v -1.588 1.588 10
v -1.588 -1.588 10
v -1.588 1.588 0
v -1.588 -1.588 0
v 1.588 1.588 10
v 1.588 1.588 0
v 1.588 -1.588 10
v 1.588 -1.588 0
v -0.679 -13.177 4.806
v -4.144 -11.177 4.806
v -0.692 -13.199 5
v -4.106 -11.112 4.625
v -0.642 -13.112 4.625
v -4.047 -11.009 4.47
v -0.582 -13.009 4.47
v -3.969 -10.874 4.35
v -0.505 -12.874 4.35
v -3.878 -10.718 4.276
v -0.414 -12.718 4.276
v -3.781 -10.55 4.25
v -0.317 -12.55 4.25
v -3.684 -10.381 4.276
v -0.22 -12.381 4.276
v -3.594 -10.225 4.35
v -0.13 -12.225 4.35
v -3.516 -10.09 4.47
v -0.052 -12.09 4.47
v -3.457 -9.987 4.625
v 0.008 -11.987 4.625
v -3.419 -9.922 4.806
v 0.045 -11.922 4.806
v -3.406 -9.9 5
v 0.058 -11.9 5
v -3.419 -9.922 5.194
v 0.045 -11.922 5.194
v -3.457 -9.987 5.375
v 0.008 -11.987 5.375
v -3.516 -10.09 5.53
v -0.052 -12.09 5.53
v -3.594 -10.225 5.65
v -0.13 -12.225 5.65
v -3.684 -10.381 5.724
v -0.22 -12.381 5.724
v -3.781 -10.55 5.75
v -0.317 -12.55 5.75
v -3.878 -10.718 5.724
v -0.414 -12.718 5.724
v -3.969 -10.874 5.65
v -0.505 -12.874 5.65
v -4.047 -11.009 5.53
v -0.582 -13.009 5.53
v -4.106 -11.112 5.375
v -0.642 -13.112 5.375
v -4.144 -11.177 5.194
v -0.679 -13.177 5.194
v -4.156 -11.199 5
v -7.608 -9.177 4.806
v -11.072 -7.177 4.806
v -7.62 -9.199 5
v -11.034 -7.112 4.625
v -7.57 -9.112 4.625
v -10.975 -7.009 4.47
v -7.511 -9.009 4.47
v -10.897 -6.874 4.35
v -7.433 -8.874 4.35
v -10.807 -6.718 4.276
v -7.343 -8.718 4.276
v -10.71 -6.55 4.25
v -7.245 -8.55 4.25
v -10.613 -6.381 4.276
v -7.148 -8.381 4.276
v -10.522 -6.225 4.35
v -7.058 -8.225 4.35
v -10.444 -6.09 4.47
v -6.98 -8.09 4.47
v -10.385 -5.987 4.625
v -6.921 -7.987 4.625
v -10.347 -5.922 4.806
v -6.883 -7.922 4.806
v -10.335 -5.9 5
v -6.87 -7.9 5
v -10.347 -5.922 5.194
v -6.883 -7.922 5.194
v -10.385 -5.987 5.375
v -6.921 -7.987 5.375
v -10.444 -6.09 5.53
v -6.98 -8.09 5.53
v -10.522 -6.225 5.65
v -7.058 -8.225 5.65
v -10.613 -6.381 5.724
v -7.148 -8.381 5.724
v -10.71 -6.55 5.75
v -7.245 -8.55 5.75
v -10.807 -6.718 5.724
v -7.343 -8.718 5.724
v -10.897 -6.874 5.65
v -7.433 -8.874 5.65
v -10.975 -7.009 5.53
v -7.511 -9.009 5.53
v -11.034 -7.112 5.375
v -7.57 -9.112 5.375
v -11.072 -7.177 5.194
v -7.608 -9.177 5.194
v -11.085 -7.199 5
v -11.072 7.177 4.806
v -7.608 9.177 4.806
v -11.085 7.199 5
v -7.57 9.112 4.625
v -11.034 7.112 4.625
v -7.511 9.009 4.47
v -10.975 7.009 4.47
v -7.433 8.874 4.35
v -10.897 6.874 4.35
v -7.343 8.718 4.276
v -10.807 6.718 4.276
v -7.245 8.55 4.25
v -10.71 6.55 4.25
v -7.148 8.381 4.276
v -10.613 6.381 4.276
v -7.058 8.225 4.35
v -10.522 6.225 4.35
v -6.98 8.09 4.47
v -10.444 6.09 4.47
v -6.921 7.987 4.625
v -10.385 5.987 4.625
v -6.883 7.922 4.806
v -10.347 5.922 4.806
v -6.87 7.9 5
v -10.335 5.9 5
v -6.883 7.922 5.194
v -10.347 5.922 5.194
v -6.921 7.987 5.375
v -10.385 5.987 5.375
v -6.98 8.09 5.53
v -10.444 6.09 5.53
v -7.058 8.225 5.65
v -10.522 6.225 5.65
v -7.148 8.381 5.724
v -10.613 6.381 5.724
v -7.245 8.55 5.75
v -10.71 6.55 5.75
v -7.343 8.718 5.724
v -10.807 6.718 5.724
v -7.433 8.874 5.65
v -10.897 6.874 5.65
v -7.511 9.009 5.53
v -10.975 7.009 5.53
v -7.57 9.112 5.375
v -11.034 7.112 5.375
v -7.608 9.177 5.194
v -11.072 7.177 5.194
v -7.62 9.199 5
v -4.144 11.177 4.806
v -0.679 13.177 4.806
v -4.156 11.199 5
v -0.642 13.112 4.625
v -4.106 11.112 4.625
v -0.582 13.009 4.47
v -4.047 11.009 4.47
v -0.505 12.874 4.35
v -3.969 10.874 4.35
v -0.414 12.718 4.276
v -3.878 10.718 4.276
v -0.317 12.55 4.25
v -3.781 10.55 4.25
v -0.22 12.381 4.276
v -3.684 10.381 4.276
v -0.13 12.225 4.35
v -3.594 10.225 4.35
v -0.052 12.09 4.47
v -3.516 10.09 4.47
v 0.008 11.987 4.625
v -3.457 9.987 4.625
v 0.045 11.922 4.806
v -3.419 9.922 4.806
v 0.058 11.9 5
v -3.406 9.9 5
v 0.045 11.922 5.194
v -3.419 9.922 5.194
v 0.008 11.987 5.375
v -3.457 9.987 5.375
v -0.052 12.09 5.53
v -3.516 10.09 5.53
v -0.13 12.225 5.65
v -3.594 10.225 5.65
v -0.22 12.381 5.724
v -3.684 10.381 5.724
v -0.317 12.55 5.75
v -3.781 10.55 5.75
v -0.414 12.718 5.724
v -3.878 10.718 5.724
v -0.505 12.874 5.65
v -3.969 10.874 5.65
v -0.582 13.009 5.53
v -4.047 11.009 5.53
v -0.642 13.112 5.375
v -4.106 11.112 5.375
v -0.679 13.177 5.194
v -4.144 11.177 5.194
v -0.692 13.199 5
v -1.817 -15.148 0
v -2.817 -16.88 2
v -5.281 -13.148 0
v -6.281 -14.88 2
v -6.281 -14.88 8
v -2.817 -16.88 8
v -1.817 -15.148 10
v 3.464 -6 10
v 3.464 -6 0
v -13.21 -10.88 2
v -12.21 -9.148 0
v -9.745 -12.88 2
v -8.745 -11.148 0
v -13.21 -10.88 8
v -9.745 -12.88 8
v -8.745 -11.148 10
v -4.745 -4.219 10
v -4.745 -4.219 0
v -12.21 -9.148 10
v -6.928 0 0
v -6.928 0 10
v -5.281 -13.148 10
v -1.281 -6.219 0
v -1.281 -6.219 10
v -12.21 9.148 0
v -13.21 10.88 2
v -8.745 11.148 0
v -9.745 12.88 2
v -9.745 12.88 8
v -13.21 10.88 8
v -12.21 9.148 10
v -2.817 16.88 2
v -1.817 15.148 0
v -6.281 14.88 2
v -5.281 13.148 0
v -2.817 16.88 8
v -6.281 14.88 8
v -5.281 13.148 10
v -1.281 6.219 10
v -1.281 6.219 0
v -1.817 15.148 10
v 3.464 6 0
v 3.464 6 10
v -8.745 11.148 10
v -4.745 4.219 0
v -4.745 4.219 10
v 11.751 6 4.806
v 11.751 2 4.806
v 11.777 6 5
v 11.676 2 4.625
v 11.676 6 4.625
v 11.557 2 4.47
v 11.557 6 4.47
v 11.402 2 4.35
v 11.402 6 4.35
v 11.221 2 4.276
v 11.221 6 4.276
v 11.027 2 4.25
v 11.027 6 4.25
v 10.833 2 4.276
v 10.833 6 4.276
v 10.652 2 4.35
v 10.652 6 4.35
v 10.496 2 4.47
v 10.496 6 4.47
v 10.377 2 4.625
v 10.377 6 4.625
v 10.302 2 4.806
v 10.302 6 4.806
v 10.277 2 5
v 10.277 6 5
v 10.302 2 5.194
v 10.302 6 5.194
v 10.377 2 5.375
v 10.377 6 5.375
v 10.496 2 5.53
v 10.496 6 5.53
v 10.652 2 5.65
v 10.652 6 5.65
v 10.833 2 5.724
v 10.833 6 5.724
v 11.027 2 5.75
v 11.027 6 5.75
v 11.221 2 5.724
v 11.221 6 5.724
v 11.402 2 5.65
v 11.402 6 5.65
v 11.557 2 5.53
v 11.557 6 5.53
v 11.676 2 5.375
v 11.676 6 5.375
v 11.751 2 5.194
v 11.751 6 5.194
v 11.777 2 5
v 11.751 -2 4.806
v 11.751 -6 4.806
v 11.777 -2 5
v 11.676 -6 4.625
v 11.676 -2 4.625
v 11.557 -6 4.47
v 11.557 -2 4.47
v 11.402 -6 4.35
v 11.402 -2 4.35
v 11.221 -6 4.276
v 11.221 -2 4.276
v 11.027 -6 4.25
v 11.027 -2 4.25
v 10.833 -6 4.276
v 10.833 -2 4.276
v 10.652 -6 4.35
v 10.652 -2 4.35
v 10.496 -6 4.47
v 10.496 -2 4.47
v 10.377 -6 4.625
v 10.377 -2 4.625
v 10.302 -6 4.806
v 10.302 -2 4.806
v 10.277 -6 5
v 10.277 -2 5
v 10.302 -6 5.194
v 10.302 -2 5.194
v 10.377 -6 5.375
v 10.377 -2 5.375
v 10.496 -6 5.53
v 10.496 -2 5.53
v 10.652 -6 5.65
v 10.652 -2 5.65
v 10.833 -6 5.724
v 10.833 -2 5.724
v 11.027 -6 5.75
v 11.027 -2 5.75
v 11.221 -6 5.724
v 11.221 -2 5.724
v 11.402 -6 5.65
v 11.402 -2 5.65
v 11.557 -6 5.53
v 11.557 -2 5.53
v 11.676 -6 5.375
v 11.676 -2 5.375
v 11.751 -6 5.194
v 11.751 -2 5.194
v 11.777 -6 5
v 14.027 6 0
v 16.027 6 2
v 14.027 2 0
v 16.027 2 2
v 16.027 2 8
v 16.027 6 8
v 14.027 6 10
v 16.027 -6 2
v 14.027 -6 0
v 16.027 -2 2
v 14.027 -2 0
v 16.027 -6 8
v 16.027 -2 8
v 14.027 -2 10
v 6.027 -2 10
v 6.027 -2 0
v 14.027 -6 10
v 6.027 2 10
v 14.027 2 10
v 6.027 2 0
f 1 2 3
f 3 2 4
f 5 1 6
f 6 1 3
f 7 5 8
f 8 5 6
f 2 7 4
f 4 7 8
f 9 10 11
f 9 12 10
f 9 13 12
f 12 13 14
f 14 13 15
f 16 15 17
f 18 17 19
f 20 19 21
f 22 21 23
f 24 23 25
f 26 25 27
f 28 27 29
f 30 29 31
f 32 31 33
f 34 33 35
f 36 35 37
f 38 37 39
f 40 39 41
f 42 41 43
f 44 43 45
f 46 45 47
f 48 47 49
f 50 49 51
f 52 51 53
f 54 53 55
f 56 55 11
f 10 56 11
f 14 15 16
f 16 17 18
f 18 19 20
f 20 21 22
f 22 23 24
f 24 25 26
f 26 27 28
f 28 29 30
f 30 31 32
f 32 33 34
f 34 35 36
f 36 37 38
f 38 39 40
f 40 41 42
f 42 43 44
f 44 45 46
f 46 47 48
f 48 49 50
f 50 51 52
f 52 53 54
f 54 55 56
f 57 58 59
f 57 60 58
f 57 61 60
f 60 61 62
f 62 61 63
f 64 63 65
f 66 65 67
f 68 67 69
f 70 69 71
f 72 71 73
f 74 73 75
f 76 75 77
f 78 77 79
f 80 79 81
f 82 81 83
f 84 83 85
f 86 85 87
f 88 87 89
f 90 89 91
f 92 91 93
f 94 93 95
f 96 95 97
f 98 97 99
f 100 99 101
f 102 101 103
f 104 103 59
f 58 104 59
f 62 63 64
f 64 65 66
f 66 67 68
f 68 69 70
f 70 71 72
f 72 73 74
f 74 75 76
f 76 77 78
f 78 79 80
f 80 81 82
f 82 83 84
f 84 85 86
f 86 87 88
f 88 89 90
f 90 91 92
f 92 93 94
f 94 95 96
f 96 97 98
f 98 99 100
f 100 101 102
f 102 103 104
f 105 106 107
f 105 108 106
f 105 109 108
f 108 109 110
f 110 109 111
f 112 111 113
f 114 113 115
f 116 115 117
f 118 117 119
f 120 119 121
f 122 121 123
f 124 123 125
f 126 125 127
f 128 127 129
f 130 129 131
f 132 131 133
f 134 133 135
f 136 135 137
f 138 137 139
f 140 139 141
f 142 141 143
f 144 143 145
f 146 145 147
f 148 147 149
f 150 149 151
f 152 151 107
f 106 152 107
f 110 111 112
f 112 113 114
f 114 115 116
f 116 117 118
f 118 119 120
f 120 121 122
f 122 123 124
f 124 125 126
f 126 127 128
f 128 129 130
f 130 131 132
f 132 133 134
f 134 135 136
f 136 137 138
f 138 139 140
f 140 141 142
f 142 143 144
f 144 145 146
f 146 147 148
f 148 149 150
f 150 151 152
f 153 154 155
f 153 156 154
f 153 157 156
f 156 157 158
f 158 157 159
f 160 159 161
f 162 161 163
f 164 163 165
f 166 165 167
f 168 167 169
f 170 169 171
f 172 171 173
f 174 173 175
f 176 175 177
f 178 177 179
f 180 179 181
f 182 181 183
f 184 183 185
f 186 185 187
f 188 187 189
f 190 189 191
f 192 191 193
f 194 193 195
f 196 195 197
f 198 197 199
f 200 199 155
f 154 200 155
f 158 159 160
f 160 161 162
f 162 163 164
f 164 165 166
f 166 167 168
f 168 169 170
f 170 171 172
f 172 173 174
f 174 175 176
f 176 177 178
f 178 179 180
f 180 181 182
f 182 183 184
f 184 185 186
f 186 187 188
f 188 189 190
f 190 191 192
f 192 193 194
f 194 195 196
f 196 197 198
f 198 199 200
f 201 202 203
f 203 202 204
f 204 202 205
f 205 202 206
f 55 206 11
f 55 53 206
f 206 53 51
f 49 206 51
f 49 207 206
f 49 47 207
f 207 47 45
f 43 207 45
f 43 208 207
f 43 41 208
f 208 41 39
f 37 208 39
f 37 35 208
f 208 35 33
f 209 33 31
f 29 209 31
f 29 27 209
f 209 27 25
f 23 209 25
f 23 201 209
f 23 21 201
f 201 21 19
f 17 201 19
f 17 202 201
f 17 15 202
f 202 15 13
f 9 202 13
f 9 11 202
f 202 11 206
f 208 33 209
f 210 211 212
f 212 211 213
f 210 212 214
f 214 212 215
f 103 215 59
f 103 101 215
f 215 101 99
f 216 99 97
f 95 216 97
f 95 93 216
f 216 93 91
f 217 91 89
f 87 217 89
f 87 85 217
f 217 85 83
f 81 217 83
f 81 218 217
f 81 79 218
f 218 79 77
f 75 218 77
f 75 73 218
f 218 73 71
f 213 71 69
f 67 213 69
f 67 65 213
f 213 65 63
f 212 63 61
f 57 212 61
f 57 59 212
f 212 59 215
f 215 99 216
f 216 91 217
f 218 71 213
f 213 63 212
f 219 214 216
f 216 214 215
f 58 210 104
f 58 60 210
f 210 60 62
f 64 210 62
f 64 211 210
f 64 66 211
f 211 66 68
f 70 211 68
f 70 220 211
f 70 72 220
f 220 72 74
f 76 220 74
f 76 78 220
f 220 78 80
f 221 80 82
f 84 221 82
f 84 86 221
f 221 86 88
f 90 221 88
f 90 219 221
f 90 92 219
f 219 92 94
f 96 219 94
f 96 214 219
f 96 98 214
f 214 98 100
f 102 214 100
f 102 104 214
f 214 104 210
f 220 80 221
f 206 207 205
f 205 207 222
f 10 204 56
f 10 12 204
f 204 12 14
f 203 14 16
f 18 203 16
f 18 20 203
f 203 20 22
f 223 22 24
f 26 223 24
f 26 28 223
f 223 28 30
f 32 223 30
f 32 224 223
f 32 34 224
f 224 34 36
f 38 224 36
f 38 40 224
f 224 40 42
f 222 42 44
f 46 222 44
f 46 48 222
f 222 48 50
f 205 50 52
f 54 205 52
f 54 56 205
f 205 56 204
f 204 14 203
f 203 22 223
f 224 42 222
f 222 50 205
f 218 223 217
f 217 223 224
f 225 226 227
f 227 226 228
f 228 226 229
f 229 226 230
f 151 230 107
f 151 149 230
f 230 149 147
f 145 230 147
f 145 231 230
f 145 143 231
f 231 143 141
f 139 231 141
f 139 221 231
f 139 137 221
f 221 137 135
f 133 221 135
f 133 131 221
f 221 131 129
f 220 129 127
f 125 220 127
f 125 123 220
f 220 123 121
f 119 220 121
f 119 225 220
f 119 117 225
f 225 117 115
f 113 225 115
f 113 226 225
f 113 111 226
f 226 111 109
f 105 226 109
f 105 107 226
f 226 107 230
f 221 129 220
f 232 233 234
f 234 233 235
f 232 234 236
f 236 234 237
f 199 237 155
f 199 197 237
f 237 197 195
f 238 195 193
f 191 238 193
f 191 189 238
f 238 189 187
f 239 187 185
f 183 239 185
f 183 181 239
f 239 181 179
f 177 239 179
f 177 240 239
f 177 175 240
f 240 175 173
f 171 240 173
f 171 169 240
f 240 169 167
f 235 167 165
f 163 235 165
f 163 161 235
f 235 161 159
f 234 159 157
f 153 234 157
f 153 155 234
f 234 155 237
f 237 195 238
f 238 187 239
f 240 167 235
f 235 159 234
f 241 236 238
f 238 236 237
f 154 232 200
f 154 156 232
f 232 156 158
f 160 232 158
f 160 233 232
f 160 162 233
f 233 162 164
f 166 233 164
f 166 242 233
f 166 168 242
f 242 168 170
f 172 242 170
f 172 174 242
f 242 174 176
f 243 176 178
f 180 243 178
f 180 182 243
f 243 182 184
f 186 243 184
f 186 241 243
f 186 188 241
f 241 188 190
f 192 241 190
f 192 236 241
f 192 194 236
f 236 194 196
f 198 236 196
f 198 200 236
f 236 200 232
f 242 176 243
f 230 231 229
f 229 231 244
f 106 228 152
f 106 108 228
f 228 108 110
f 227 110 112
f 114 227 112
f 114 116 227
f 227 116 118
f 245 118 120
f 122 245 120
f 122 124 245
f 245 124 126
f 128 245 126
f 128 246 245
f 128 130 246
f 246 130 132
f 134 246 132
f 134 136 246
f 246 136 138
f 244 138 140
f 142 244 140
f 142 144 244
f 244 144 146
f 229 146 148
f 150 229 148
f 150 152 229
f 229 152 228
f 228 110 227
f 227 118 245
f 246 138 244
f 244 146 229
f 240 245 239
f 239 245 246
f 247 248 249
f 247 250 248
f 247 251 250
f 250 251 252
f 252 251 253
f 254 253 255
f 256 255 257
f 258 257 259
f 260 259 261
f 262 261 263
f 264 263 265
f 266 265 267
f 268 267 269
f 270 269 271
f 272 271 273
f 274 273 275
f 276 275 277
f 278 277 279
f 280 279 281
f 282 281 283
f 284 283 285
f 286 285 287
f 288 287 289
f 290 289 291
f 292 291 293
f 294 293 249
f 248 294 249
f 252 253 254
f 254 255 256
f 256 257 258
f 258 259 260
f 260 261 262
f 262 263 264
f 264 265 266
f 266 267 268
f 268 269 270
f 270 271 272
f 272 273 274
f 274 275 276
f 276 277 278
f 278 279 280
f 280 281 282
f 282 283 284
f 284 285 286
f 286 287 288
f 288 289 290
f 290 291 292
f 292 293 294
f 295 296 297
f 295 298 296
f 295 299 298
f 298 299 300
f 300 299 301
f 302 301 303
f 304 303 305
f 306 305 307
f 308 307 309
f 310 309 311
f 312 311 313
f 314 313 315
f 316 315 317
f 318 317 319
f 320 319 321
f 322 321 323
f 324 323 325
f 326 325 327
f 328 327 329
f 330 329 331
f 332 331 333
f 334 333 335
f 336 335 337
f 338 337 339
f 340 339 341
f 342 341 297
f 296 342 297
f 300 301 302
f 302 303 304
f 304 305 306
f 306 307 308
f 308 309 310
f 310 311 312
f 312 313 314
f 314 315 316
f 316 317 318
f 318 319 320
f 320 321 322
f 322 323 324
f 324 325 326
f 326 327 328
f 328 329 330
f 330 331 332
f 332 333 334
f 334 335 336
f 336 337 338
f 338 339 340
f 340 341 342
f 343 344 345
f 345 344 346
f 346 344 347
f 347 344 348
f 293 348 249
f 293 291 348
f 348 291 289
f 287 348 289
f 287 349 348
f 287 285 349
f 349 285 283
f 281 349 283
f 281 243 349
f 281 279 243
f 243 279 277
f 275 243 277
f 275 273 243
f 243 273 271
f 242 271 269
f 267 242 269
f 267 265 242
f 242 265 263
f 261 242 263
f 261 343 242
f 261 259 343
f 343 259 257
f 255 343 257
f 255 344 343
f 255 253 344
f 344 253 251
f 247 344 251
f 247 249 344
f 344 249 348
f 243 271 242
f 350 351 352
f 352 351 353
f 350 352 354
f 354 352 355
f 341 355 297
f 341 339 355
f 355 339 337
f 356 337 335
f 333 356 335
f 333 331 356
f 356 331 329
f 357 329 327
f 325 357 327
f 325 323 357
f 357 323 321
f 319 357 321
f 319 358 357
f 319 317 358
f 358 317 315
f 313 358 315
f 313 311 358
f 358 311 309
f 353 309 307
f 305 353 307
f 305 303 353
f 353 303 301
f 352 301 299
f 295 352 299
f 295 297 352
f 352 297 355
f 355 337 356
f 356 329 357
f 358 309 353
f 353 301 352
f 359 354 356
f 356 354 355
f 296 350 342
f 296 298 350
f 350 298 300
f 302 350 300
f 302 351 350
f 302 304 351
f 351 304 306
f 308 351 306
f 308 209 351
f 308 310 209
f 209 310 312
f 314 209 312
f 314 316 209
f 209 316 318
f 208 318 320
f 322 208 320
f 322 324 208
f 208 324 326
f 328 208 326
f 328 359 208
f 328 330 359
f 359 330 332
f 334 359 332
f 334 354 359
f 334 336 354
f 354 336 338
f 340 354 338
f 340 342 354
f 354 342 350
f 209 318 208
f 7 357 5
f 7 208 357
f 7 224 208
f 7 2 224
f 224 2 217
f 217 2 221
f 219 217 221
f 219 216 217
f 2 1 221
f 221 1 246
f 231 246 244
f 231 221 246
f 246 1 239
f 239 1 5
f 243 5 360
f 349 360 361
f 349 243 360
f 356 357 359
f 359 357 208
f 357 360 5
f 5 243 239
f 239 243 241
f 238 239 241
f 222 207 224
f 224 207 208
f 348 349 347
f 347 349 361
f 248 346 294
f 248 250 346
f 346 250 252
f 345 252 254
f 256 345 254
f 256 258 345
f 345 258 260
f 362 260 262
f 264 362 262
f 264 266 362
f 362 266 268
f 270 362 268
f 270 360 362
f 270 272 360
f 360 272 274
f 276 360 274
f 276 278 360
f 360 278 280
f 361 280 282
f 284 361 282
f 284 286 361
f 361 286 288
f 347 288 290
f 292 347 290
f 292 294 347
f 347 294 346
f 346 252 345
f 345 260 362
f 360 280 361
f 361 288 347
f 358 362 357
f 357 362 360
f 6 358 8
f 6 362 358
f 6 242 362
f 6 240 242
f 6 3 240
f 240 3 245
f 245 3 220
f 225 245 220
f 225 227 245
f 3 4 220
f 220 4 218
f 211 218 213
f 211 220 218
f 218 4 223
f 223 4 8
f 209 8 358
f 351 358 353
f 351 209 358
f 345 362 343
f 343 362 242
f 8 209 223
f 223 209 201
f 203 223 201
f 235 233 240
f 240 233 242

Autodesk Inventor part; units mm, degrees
ref_plane "YZ Plane" through (0, 0, 0) normal (1, 0, 0) x (0, 1, 0)
ref_plane "XZ Plane" through (0, 0, 0) normal (0, 1, 0) x (-1, 0, 0)
ref_plane "XY Plane" through (0, 0, 0) normal (0, 0, 1) x (1, 0, 0)
sketch "Sketch1" plane through (0, 0, 0) normal (0, 0, 1) x (1, 0, 0)
  line L0 (3.4641, -6) -> (11.0268, -6)
  line L1 (11.0268, -2) -> (6.0268, -2)
  line L2 (6.0268, -2) -> (6.0268, 2)
  line L3 (6.0268, 2) -> (11.0268, 2)
  line L4 (11.0268, 6) -> (3.4641, 6)
  line L5 (16.0268, 2) -> (16.0268, 6)
  line L6 (16.0268, -6) -> (16.0268, -2)
  line L7 (16.0268, 6) -> (3.4641, 6)
  line L8 (3.4641, 6) -> (0, 0)
  line L9 (0, 0) -> (3.4641, -6)
  line L10 (3.4641, -6) -> (16.0268, -6)
  line L11 (16.0268, 2) -> (6.0268, 2)
  line L12 (6.0268, 2) -> (6.0268, -2)
  line L13 (6.0268, -2) -> (16.0268, -2)
  line L14 (16.0268, 6) -> (16.0268, 2)
  line L15 (16.0268, -2) -> (16.0268, -6)
  point P0 (0, 0)
  dimension "d8" = 10
  dimension "d9" = 10
extrude "Extrusion1" add sketch "Sketch1" along normal blind 10
chamfer "Chamfer2" distance 2 angle 45 4 edges at (16.0268, 4, 10) (16.0268, -4, 10) (16.0268, -4, 0) (16.0268, 4, 0)
sketch "Sketch3" plane through (3.4641, 6, 10) normal (0, 1, 0) x (1, 0, 0)
  line L0 (10.5627, 10) -> (0, 10) projected
  line L1 (12.5627, 8) -> (12.5627, 2) projected
  circle A0 centre (7.5627, 5) radius 0.75
  point P0 (-3.4641, 10)
  dimension "d13" = 1.5
  dimension "d14" = 5
  dimension "d15" = 5
extrude "Extrusion2" cut sketch "Sketch3" against normal blind 22.7
pattern_circular "Circular Pattern1" count 3 over 360 about axis through (0, 0, 0) along (0, 0, 1) of "Extrusion1", "Extrusion2", "Chamfer2"
sketch "Sketch4" plane through (0, 0, 10) normal (0, 0, 1) x (1, 0, 0)
  circle A0 centre (0, 0) radius 0.75
  dimension "d21" = 1.5
extrude "Extrusion3" cut sketch "Sketch4" against normal blind 8
sketch "Sketch6" plane through (0, 0, 0) normal (0, 0, -1) x (-1, 0, 0)
  line L0 (-1.5875, 1.5875) -> (1.5875, 1.5875)
  line L1 (1.5875, 1.5875) -> (1.5875, -1.5875)
  line L2 (1.5875, -1.5875) -> (-1.5875, -1.5875)
  line L3 (-1.5875, -1.5875) -> (-1.5875, 1.5875)
  point P0 (0, 0)
  dimension "d25" = 1.5875
  dimension "d26" = 3.175
  dimension "d27" = 3.175
  dimension "d28" = 1.5875
extrude "Extrusion4" cut sketch "Sketch6" against normal blind 11.1125
properties part number "Plunger2"
